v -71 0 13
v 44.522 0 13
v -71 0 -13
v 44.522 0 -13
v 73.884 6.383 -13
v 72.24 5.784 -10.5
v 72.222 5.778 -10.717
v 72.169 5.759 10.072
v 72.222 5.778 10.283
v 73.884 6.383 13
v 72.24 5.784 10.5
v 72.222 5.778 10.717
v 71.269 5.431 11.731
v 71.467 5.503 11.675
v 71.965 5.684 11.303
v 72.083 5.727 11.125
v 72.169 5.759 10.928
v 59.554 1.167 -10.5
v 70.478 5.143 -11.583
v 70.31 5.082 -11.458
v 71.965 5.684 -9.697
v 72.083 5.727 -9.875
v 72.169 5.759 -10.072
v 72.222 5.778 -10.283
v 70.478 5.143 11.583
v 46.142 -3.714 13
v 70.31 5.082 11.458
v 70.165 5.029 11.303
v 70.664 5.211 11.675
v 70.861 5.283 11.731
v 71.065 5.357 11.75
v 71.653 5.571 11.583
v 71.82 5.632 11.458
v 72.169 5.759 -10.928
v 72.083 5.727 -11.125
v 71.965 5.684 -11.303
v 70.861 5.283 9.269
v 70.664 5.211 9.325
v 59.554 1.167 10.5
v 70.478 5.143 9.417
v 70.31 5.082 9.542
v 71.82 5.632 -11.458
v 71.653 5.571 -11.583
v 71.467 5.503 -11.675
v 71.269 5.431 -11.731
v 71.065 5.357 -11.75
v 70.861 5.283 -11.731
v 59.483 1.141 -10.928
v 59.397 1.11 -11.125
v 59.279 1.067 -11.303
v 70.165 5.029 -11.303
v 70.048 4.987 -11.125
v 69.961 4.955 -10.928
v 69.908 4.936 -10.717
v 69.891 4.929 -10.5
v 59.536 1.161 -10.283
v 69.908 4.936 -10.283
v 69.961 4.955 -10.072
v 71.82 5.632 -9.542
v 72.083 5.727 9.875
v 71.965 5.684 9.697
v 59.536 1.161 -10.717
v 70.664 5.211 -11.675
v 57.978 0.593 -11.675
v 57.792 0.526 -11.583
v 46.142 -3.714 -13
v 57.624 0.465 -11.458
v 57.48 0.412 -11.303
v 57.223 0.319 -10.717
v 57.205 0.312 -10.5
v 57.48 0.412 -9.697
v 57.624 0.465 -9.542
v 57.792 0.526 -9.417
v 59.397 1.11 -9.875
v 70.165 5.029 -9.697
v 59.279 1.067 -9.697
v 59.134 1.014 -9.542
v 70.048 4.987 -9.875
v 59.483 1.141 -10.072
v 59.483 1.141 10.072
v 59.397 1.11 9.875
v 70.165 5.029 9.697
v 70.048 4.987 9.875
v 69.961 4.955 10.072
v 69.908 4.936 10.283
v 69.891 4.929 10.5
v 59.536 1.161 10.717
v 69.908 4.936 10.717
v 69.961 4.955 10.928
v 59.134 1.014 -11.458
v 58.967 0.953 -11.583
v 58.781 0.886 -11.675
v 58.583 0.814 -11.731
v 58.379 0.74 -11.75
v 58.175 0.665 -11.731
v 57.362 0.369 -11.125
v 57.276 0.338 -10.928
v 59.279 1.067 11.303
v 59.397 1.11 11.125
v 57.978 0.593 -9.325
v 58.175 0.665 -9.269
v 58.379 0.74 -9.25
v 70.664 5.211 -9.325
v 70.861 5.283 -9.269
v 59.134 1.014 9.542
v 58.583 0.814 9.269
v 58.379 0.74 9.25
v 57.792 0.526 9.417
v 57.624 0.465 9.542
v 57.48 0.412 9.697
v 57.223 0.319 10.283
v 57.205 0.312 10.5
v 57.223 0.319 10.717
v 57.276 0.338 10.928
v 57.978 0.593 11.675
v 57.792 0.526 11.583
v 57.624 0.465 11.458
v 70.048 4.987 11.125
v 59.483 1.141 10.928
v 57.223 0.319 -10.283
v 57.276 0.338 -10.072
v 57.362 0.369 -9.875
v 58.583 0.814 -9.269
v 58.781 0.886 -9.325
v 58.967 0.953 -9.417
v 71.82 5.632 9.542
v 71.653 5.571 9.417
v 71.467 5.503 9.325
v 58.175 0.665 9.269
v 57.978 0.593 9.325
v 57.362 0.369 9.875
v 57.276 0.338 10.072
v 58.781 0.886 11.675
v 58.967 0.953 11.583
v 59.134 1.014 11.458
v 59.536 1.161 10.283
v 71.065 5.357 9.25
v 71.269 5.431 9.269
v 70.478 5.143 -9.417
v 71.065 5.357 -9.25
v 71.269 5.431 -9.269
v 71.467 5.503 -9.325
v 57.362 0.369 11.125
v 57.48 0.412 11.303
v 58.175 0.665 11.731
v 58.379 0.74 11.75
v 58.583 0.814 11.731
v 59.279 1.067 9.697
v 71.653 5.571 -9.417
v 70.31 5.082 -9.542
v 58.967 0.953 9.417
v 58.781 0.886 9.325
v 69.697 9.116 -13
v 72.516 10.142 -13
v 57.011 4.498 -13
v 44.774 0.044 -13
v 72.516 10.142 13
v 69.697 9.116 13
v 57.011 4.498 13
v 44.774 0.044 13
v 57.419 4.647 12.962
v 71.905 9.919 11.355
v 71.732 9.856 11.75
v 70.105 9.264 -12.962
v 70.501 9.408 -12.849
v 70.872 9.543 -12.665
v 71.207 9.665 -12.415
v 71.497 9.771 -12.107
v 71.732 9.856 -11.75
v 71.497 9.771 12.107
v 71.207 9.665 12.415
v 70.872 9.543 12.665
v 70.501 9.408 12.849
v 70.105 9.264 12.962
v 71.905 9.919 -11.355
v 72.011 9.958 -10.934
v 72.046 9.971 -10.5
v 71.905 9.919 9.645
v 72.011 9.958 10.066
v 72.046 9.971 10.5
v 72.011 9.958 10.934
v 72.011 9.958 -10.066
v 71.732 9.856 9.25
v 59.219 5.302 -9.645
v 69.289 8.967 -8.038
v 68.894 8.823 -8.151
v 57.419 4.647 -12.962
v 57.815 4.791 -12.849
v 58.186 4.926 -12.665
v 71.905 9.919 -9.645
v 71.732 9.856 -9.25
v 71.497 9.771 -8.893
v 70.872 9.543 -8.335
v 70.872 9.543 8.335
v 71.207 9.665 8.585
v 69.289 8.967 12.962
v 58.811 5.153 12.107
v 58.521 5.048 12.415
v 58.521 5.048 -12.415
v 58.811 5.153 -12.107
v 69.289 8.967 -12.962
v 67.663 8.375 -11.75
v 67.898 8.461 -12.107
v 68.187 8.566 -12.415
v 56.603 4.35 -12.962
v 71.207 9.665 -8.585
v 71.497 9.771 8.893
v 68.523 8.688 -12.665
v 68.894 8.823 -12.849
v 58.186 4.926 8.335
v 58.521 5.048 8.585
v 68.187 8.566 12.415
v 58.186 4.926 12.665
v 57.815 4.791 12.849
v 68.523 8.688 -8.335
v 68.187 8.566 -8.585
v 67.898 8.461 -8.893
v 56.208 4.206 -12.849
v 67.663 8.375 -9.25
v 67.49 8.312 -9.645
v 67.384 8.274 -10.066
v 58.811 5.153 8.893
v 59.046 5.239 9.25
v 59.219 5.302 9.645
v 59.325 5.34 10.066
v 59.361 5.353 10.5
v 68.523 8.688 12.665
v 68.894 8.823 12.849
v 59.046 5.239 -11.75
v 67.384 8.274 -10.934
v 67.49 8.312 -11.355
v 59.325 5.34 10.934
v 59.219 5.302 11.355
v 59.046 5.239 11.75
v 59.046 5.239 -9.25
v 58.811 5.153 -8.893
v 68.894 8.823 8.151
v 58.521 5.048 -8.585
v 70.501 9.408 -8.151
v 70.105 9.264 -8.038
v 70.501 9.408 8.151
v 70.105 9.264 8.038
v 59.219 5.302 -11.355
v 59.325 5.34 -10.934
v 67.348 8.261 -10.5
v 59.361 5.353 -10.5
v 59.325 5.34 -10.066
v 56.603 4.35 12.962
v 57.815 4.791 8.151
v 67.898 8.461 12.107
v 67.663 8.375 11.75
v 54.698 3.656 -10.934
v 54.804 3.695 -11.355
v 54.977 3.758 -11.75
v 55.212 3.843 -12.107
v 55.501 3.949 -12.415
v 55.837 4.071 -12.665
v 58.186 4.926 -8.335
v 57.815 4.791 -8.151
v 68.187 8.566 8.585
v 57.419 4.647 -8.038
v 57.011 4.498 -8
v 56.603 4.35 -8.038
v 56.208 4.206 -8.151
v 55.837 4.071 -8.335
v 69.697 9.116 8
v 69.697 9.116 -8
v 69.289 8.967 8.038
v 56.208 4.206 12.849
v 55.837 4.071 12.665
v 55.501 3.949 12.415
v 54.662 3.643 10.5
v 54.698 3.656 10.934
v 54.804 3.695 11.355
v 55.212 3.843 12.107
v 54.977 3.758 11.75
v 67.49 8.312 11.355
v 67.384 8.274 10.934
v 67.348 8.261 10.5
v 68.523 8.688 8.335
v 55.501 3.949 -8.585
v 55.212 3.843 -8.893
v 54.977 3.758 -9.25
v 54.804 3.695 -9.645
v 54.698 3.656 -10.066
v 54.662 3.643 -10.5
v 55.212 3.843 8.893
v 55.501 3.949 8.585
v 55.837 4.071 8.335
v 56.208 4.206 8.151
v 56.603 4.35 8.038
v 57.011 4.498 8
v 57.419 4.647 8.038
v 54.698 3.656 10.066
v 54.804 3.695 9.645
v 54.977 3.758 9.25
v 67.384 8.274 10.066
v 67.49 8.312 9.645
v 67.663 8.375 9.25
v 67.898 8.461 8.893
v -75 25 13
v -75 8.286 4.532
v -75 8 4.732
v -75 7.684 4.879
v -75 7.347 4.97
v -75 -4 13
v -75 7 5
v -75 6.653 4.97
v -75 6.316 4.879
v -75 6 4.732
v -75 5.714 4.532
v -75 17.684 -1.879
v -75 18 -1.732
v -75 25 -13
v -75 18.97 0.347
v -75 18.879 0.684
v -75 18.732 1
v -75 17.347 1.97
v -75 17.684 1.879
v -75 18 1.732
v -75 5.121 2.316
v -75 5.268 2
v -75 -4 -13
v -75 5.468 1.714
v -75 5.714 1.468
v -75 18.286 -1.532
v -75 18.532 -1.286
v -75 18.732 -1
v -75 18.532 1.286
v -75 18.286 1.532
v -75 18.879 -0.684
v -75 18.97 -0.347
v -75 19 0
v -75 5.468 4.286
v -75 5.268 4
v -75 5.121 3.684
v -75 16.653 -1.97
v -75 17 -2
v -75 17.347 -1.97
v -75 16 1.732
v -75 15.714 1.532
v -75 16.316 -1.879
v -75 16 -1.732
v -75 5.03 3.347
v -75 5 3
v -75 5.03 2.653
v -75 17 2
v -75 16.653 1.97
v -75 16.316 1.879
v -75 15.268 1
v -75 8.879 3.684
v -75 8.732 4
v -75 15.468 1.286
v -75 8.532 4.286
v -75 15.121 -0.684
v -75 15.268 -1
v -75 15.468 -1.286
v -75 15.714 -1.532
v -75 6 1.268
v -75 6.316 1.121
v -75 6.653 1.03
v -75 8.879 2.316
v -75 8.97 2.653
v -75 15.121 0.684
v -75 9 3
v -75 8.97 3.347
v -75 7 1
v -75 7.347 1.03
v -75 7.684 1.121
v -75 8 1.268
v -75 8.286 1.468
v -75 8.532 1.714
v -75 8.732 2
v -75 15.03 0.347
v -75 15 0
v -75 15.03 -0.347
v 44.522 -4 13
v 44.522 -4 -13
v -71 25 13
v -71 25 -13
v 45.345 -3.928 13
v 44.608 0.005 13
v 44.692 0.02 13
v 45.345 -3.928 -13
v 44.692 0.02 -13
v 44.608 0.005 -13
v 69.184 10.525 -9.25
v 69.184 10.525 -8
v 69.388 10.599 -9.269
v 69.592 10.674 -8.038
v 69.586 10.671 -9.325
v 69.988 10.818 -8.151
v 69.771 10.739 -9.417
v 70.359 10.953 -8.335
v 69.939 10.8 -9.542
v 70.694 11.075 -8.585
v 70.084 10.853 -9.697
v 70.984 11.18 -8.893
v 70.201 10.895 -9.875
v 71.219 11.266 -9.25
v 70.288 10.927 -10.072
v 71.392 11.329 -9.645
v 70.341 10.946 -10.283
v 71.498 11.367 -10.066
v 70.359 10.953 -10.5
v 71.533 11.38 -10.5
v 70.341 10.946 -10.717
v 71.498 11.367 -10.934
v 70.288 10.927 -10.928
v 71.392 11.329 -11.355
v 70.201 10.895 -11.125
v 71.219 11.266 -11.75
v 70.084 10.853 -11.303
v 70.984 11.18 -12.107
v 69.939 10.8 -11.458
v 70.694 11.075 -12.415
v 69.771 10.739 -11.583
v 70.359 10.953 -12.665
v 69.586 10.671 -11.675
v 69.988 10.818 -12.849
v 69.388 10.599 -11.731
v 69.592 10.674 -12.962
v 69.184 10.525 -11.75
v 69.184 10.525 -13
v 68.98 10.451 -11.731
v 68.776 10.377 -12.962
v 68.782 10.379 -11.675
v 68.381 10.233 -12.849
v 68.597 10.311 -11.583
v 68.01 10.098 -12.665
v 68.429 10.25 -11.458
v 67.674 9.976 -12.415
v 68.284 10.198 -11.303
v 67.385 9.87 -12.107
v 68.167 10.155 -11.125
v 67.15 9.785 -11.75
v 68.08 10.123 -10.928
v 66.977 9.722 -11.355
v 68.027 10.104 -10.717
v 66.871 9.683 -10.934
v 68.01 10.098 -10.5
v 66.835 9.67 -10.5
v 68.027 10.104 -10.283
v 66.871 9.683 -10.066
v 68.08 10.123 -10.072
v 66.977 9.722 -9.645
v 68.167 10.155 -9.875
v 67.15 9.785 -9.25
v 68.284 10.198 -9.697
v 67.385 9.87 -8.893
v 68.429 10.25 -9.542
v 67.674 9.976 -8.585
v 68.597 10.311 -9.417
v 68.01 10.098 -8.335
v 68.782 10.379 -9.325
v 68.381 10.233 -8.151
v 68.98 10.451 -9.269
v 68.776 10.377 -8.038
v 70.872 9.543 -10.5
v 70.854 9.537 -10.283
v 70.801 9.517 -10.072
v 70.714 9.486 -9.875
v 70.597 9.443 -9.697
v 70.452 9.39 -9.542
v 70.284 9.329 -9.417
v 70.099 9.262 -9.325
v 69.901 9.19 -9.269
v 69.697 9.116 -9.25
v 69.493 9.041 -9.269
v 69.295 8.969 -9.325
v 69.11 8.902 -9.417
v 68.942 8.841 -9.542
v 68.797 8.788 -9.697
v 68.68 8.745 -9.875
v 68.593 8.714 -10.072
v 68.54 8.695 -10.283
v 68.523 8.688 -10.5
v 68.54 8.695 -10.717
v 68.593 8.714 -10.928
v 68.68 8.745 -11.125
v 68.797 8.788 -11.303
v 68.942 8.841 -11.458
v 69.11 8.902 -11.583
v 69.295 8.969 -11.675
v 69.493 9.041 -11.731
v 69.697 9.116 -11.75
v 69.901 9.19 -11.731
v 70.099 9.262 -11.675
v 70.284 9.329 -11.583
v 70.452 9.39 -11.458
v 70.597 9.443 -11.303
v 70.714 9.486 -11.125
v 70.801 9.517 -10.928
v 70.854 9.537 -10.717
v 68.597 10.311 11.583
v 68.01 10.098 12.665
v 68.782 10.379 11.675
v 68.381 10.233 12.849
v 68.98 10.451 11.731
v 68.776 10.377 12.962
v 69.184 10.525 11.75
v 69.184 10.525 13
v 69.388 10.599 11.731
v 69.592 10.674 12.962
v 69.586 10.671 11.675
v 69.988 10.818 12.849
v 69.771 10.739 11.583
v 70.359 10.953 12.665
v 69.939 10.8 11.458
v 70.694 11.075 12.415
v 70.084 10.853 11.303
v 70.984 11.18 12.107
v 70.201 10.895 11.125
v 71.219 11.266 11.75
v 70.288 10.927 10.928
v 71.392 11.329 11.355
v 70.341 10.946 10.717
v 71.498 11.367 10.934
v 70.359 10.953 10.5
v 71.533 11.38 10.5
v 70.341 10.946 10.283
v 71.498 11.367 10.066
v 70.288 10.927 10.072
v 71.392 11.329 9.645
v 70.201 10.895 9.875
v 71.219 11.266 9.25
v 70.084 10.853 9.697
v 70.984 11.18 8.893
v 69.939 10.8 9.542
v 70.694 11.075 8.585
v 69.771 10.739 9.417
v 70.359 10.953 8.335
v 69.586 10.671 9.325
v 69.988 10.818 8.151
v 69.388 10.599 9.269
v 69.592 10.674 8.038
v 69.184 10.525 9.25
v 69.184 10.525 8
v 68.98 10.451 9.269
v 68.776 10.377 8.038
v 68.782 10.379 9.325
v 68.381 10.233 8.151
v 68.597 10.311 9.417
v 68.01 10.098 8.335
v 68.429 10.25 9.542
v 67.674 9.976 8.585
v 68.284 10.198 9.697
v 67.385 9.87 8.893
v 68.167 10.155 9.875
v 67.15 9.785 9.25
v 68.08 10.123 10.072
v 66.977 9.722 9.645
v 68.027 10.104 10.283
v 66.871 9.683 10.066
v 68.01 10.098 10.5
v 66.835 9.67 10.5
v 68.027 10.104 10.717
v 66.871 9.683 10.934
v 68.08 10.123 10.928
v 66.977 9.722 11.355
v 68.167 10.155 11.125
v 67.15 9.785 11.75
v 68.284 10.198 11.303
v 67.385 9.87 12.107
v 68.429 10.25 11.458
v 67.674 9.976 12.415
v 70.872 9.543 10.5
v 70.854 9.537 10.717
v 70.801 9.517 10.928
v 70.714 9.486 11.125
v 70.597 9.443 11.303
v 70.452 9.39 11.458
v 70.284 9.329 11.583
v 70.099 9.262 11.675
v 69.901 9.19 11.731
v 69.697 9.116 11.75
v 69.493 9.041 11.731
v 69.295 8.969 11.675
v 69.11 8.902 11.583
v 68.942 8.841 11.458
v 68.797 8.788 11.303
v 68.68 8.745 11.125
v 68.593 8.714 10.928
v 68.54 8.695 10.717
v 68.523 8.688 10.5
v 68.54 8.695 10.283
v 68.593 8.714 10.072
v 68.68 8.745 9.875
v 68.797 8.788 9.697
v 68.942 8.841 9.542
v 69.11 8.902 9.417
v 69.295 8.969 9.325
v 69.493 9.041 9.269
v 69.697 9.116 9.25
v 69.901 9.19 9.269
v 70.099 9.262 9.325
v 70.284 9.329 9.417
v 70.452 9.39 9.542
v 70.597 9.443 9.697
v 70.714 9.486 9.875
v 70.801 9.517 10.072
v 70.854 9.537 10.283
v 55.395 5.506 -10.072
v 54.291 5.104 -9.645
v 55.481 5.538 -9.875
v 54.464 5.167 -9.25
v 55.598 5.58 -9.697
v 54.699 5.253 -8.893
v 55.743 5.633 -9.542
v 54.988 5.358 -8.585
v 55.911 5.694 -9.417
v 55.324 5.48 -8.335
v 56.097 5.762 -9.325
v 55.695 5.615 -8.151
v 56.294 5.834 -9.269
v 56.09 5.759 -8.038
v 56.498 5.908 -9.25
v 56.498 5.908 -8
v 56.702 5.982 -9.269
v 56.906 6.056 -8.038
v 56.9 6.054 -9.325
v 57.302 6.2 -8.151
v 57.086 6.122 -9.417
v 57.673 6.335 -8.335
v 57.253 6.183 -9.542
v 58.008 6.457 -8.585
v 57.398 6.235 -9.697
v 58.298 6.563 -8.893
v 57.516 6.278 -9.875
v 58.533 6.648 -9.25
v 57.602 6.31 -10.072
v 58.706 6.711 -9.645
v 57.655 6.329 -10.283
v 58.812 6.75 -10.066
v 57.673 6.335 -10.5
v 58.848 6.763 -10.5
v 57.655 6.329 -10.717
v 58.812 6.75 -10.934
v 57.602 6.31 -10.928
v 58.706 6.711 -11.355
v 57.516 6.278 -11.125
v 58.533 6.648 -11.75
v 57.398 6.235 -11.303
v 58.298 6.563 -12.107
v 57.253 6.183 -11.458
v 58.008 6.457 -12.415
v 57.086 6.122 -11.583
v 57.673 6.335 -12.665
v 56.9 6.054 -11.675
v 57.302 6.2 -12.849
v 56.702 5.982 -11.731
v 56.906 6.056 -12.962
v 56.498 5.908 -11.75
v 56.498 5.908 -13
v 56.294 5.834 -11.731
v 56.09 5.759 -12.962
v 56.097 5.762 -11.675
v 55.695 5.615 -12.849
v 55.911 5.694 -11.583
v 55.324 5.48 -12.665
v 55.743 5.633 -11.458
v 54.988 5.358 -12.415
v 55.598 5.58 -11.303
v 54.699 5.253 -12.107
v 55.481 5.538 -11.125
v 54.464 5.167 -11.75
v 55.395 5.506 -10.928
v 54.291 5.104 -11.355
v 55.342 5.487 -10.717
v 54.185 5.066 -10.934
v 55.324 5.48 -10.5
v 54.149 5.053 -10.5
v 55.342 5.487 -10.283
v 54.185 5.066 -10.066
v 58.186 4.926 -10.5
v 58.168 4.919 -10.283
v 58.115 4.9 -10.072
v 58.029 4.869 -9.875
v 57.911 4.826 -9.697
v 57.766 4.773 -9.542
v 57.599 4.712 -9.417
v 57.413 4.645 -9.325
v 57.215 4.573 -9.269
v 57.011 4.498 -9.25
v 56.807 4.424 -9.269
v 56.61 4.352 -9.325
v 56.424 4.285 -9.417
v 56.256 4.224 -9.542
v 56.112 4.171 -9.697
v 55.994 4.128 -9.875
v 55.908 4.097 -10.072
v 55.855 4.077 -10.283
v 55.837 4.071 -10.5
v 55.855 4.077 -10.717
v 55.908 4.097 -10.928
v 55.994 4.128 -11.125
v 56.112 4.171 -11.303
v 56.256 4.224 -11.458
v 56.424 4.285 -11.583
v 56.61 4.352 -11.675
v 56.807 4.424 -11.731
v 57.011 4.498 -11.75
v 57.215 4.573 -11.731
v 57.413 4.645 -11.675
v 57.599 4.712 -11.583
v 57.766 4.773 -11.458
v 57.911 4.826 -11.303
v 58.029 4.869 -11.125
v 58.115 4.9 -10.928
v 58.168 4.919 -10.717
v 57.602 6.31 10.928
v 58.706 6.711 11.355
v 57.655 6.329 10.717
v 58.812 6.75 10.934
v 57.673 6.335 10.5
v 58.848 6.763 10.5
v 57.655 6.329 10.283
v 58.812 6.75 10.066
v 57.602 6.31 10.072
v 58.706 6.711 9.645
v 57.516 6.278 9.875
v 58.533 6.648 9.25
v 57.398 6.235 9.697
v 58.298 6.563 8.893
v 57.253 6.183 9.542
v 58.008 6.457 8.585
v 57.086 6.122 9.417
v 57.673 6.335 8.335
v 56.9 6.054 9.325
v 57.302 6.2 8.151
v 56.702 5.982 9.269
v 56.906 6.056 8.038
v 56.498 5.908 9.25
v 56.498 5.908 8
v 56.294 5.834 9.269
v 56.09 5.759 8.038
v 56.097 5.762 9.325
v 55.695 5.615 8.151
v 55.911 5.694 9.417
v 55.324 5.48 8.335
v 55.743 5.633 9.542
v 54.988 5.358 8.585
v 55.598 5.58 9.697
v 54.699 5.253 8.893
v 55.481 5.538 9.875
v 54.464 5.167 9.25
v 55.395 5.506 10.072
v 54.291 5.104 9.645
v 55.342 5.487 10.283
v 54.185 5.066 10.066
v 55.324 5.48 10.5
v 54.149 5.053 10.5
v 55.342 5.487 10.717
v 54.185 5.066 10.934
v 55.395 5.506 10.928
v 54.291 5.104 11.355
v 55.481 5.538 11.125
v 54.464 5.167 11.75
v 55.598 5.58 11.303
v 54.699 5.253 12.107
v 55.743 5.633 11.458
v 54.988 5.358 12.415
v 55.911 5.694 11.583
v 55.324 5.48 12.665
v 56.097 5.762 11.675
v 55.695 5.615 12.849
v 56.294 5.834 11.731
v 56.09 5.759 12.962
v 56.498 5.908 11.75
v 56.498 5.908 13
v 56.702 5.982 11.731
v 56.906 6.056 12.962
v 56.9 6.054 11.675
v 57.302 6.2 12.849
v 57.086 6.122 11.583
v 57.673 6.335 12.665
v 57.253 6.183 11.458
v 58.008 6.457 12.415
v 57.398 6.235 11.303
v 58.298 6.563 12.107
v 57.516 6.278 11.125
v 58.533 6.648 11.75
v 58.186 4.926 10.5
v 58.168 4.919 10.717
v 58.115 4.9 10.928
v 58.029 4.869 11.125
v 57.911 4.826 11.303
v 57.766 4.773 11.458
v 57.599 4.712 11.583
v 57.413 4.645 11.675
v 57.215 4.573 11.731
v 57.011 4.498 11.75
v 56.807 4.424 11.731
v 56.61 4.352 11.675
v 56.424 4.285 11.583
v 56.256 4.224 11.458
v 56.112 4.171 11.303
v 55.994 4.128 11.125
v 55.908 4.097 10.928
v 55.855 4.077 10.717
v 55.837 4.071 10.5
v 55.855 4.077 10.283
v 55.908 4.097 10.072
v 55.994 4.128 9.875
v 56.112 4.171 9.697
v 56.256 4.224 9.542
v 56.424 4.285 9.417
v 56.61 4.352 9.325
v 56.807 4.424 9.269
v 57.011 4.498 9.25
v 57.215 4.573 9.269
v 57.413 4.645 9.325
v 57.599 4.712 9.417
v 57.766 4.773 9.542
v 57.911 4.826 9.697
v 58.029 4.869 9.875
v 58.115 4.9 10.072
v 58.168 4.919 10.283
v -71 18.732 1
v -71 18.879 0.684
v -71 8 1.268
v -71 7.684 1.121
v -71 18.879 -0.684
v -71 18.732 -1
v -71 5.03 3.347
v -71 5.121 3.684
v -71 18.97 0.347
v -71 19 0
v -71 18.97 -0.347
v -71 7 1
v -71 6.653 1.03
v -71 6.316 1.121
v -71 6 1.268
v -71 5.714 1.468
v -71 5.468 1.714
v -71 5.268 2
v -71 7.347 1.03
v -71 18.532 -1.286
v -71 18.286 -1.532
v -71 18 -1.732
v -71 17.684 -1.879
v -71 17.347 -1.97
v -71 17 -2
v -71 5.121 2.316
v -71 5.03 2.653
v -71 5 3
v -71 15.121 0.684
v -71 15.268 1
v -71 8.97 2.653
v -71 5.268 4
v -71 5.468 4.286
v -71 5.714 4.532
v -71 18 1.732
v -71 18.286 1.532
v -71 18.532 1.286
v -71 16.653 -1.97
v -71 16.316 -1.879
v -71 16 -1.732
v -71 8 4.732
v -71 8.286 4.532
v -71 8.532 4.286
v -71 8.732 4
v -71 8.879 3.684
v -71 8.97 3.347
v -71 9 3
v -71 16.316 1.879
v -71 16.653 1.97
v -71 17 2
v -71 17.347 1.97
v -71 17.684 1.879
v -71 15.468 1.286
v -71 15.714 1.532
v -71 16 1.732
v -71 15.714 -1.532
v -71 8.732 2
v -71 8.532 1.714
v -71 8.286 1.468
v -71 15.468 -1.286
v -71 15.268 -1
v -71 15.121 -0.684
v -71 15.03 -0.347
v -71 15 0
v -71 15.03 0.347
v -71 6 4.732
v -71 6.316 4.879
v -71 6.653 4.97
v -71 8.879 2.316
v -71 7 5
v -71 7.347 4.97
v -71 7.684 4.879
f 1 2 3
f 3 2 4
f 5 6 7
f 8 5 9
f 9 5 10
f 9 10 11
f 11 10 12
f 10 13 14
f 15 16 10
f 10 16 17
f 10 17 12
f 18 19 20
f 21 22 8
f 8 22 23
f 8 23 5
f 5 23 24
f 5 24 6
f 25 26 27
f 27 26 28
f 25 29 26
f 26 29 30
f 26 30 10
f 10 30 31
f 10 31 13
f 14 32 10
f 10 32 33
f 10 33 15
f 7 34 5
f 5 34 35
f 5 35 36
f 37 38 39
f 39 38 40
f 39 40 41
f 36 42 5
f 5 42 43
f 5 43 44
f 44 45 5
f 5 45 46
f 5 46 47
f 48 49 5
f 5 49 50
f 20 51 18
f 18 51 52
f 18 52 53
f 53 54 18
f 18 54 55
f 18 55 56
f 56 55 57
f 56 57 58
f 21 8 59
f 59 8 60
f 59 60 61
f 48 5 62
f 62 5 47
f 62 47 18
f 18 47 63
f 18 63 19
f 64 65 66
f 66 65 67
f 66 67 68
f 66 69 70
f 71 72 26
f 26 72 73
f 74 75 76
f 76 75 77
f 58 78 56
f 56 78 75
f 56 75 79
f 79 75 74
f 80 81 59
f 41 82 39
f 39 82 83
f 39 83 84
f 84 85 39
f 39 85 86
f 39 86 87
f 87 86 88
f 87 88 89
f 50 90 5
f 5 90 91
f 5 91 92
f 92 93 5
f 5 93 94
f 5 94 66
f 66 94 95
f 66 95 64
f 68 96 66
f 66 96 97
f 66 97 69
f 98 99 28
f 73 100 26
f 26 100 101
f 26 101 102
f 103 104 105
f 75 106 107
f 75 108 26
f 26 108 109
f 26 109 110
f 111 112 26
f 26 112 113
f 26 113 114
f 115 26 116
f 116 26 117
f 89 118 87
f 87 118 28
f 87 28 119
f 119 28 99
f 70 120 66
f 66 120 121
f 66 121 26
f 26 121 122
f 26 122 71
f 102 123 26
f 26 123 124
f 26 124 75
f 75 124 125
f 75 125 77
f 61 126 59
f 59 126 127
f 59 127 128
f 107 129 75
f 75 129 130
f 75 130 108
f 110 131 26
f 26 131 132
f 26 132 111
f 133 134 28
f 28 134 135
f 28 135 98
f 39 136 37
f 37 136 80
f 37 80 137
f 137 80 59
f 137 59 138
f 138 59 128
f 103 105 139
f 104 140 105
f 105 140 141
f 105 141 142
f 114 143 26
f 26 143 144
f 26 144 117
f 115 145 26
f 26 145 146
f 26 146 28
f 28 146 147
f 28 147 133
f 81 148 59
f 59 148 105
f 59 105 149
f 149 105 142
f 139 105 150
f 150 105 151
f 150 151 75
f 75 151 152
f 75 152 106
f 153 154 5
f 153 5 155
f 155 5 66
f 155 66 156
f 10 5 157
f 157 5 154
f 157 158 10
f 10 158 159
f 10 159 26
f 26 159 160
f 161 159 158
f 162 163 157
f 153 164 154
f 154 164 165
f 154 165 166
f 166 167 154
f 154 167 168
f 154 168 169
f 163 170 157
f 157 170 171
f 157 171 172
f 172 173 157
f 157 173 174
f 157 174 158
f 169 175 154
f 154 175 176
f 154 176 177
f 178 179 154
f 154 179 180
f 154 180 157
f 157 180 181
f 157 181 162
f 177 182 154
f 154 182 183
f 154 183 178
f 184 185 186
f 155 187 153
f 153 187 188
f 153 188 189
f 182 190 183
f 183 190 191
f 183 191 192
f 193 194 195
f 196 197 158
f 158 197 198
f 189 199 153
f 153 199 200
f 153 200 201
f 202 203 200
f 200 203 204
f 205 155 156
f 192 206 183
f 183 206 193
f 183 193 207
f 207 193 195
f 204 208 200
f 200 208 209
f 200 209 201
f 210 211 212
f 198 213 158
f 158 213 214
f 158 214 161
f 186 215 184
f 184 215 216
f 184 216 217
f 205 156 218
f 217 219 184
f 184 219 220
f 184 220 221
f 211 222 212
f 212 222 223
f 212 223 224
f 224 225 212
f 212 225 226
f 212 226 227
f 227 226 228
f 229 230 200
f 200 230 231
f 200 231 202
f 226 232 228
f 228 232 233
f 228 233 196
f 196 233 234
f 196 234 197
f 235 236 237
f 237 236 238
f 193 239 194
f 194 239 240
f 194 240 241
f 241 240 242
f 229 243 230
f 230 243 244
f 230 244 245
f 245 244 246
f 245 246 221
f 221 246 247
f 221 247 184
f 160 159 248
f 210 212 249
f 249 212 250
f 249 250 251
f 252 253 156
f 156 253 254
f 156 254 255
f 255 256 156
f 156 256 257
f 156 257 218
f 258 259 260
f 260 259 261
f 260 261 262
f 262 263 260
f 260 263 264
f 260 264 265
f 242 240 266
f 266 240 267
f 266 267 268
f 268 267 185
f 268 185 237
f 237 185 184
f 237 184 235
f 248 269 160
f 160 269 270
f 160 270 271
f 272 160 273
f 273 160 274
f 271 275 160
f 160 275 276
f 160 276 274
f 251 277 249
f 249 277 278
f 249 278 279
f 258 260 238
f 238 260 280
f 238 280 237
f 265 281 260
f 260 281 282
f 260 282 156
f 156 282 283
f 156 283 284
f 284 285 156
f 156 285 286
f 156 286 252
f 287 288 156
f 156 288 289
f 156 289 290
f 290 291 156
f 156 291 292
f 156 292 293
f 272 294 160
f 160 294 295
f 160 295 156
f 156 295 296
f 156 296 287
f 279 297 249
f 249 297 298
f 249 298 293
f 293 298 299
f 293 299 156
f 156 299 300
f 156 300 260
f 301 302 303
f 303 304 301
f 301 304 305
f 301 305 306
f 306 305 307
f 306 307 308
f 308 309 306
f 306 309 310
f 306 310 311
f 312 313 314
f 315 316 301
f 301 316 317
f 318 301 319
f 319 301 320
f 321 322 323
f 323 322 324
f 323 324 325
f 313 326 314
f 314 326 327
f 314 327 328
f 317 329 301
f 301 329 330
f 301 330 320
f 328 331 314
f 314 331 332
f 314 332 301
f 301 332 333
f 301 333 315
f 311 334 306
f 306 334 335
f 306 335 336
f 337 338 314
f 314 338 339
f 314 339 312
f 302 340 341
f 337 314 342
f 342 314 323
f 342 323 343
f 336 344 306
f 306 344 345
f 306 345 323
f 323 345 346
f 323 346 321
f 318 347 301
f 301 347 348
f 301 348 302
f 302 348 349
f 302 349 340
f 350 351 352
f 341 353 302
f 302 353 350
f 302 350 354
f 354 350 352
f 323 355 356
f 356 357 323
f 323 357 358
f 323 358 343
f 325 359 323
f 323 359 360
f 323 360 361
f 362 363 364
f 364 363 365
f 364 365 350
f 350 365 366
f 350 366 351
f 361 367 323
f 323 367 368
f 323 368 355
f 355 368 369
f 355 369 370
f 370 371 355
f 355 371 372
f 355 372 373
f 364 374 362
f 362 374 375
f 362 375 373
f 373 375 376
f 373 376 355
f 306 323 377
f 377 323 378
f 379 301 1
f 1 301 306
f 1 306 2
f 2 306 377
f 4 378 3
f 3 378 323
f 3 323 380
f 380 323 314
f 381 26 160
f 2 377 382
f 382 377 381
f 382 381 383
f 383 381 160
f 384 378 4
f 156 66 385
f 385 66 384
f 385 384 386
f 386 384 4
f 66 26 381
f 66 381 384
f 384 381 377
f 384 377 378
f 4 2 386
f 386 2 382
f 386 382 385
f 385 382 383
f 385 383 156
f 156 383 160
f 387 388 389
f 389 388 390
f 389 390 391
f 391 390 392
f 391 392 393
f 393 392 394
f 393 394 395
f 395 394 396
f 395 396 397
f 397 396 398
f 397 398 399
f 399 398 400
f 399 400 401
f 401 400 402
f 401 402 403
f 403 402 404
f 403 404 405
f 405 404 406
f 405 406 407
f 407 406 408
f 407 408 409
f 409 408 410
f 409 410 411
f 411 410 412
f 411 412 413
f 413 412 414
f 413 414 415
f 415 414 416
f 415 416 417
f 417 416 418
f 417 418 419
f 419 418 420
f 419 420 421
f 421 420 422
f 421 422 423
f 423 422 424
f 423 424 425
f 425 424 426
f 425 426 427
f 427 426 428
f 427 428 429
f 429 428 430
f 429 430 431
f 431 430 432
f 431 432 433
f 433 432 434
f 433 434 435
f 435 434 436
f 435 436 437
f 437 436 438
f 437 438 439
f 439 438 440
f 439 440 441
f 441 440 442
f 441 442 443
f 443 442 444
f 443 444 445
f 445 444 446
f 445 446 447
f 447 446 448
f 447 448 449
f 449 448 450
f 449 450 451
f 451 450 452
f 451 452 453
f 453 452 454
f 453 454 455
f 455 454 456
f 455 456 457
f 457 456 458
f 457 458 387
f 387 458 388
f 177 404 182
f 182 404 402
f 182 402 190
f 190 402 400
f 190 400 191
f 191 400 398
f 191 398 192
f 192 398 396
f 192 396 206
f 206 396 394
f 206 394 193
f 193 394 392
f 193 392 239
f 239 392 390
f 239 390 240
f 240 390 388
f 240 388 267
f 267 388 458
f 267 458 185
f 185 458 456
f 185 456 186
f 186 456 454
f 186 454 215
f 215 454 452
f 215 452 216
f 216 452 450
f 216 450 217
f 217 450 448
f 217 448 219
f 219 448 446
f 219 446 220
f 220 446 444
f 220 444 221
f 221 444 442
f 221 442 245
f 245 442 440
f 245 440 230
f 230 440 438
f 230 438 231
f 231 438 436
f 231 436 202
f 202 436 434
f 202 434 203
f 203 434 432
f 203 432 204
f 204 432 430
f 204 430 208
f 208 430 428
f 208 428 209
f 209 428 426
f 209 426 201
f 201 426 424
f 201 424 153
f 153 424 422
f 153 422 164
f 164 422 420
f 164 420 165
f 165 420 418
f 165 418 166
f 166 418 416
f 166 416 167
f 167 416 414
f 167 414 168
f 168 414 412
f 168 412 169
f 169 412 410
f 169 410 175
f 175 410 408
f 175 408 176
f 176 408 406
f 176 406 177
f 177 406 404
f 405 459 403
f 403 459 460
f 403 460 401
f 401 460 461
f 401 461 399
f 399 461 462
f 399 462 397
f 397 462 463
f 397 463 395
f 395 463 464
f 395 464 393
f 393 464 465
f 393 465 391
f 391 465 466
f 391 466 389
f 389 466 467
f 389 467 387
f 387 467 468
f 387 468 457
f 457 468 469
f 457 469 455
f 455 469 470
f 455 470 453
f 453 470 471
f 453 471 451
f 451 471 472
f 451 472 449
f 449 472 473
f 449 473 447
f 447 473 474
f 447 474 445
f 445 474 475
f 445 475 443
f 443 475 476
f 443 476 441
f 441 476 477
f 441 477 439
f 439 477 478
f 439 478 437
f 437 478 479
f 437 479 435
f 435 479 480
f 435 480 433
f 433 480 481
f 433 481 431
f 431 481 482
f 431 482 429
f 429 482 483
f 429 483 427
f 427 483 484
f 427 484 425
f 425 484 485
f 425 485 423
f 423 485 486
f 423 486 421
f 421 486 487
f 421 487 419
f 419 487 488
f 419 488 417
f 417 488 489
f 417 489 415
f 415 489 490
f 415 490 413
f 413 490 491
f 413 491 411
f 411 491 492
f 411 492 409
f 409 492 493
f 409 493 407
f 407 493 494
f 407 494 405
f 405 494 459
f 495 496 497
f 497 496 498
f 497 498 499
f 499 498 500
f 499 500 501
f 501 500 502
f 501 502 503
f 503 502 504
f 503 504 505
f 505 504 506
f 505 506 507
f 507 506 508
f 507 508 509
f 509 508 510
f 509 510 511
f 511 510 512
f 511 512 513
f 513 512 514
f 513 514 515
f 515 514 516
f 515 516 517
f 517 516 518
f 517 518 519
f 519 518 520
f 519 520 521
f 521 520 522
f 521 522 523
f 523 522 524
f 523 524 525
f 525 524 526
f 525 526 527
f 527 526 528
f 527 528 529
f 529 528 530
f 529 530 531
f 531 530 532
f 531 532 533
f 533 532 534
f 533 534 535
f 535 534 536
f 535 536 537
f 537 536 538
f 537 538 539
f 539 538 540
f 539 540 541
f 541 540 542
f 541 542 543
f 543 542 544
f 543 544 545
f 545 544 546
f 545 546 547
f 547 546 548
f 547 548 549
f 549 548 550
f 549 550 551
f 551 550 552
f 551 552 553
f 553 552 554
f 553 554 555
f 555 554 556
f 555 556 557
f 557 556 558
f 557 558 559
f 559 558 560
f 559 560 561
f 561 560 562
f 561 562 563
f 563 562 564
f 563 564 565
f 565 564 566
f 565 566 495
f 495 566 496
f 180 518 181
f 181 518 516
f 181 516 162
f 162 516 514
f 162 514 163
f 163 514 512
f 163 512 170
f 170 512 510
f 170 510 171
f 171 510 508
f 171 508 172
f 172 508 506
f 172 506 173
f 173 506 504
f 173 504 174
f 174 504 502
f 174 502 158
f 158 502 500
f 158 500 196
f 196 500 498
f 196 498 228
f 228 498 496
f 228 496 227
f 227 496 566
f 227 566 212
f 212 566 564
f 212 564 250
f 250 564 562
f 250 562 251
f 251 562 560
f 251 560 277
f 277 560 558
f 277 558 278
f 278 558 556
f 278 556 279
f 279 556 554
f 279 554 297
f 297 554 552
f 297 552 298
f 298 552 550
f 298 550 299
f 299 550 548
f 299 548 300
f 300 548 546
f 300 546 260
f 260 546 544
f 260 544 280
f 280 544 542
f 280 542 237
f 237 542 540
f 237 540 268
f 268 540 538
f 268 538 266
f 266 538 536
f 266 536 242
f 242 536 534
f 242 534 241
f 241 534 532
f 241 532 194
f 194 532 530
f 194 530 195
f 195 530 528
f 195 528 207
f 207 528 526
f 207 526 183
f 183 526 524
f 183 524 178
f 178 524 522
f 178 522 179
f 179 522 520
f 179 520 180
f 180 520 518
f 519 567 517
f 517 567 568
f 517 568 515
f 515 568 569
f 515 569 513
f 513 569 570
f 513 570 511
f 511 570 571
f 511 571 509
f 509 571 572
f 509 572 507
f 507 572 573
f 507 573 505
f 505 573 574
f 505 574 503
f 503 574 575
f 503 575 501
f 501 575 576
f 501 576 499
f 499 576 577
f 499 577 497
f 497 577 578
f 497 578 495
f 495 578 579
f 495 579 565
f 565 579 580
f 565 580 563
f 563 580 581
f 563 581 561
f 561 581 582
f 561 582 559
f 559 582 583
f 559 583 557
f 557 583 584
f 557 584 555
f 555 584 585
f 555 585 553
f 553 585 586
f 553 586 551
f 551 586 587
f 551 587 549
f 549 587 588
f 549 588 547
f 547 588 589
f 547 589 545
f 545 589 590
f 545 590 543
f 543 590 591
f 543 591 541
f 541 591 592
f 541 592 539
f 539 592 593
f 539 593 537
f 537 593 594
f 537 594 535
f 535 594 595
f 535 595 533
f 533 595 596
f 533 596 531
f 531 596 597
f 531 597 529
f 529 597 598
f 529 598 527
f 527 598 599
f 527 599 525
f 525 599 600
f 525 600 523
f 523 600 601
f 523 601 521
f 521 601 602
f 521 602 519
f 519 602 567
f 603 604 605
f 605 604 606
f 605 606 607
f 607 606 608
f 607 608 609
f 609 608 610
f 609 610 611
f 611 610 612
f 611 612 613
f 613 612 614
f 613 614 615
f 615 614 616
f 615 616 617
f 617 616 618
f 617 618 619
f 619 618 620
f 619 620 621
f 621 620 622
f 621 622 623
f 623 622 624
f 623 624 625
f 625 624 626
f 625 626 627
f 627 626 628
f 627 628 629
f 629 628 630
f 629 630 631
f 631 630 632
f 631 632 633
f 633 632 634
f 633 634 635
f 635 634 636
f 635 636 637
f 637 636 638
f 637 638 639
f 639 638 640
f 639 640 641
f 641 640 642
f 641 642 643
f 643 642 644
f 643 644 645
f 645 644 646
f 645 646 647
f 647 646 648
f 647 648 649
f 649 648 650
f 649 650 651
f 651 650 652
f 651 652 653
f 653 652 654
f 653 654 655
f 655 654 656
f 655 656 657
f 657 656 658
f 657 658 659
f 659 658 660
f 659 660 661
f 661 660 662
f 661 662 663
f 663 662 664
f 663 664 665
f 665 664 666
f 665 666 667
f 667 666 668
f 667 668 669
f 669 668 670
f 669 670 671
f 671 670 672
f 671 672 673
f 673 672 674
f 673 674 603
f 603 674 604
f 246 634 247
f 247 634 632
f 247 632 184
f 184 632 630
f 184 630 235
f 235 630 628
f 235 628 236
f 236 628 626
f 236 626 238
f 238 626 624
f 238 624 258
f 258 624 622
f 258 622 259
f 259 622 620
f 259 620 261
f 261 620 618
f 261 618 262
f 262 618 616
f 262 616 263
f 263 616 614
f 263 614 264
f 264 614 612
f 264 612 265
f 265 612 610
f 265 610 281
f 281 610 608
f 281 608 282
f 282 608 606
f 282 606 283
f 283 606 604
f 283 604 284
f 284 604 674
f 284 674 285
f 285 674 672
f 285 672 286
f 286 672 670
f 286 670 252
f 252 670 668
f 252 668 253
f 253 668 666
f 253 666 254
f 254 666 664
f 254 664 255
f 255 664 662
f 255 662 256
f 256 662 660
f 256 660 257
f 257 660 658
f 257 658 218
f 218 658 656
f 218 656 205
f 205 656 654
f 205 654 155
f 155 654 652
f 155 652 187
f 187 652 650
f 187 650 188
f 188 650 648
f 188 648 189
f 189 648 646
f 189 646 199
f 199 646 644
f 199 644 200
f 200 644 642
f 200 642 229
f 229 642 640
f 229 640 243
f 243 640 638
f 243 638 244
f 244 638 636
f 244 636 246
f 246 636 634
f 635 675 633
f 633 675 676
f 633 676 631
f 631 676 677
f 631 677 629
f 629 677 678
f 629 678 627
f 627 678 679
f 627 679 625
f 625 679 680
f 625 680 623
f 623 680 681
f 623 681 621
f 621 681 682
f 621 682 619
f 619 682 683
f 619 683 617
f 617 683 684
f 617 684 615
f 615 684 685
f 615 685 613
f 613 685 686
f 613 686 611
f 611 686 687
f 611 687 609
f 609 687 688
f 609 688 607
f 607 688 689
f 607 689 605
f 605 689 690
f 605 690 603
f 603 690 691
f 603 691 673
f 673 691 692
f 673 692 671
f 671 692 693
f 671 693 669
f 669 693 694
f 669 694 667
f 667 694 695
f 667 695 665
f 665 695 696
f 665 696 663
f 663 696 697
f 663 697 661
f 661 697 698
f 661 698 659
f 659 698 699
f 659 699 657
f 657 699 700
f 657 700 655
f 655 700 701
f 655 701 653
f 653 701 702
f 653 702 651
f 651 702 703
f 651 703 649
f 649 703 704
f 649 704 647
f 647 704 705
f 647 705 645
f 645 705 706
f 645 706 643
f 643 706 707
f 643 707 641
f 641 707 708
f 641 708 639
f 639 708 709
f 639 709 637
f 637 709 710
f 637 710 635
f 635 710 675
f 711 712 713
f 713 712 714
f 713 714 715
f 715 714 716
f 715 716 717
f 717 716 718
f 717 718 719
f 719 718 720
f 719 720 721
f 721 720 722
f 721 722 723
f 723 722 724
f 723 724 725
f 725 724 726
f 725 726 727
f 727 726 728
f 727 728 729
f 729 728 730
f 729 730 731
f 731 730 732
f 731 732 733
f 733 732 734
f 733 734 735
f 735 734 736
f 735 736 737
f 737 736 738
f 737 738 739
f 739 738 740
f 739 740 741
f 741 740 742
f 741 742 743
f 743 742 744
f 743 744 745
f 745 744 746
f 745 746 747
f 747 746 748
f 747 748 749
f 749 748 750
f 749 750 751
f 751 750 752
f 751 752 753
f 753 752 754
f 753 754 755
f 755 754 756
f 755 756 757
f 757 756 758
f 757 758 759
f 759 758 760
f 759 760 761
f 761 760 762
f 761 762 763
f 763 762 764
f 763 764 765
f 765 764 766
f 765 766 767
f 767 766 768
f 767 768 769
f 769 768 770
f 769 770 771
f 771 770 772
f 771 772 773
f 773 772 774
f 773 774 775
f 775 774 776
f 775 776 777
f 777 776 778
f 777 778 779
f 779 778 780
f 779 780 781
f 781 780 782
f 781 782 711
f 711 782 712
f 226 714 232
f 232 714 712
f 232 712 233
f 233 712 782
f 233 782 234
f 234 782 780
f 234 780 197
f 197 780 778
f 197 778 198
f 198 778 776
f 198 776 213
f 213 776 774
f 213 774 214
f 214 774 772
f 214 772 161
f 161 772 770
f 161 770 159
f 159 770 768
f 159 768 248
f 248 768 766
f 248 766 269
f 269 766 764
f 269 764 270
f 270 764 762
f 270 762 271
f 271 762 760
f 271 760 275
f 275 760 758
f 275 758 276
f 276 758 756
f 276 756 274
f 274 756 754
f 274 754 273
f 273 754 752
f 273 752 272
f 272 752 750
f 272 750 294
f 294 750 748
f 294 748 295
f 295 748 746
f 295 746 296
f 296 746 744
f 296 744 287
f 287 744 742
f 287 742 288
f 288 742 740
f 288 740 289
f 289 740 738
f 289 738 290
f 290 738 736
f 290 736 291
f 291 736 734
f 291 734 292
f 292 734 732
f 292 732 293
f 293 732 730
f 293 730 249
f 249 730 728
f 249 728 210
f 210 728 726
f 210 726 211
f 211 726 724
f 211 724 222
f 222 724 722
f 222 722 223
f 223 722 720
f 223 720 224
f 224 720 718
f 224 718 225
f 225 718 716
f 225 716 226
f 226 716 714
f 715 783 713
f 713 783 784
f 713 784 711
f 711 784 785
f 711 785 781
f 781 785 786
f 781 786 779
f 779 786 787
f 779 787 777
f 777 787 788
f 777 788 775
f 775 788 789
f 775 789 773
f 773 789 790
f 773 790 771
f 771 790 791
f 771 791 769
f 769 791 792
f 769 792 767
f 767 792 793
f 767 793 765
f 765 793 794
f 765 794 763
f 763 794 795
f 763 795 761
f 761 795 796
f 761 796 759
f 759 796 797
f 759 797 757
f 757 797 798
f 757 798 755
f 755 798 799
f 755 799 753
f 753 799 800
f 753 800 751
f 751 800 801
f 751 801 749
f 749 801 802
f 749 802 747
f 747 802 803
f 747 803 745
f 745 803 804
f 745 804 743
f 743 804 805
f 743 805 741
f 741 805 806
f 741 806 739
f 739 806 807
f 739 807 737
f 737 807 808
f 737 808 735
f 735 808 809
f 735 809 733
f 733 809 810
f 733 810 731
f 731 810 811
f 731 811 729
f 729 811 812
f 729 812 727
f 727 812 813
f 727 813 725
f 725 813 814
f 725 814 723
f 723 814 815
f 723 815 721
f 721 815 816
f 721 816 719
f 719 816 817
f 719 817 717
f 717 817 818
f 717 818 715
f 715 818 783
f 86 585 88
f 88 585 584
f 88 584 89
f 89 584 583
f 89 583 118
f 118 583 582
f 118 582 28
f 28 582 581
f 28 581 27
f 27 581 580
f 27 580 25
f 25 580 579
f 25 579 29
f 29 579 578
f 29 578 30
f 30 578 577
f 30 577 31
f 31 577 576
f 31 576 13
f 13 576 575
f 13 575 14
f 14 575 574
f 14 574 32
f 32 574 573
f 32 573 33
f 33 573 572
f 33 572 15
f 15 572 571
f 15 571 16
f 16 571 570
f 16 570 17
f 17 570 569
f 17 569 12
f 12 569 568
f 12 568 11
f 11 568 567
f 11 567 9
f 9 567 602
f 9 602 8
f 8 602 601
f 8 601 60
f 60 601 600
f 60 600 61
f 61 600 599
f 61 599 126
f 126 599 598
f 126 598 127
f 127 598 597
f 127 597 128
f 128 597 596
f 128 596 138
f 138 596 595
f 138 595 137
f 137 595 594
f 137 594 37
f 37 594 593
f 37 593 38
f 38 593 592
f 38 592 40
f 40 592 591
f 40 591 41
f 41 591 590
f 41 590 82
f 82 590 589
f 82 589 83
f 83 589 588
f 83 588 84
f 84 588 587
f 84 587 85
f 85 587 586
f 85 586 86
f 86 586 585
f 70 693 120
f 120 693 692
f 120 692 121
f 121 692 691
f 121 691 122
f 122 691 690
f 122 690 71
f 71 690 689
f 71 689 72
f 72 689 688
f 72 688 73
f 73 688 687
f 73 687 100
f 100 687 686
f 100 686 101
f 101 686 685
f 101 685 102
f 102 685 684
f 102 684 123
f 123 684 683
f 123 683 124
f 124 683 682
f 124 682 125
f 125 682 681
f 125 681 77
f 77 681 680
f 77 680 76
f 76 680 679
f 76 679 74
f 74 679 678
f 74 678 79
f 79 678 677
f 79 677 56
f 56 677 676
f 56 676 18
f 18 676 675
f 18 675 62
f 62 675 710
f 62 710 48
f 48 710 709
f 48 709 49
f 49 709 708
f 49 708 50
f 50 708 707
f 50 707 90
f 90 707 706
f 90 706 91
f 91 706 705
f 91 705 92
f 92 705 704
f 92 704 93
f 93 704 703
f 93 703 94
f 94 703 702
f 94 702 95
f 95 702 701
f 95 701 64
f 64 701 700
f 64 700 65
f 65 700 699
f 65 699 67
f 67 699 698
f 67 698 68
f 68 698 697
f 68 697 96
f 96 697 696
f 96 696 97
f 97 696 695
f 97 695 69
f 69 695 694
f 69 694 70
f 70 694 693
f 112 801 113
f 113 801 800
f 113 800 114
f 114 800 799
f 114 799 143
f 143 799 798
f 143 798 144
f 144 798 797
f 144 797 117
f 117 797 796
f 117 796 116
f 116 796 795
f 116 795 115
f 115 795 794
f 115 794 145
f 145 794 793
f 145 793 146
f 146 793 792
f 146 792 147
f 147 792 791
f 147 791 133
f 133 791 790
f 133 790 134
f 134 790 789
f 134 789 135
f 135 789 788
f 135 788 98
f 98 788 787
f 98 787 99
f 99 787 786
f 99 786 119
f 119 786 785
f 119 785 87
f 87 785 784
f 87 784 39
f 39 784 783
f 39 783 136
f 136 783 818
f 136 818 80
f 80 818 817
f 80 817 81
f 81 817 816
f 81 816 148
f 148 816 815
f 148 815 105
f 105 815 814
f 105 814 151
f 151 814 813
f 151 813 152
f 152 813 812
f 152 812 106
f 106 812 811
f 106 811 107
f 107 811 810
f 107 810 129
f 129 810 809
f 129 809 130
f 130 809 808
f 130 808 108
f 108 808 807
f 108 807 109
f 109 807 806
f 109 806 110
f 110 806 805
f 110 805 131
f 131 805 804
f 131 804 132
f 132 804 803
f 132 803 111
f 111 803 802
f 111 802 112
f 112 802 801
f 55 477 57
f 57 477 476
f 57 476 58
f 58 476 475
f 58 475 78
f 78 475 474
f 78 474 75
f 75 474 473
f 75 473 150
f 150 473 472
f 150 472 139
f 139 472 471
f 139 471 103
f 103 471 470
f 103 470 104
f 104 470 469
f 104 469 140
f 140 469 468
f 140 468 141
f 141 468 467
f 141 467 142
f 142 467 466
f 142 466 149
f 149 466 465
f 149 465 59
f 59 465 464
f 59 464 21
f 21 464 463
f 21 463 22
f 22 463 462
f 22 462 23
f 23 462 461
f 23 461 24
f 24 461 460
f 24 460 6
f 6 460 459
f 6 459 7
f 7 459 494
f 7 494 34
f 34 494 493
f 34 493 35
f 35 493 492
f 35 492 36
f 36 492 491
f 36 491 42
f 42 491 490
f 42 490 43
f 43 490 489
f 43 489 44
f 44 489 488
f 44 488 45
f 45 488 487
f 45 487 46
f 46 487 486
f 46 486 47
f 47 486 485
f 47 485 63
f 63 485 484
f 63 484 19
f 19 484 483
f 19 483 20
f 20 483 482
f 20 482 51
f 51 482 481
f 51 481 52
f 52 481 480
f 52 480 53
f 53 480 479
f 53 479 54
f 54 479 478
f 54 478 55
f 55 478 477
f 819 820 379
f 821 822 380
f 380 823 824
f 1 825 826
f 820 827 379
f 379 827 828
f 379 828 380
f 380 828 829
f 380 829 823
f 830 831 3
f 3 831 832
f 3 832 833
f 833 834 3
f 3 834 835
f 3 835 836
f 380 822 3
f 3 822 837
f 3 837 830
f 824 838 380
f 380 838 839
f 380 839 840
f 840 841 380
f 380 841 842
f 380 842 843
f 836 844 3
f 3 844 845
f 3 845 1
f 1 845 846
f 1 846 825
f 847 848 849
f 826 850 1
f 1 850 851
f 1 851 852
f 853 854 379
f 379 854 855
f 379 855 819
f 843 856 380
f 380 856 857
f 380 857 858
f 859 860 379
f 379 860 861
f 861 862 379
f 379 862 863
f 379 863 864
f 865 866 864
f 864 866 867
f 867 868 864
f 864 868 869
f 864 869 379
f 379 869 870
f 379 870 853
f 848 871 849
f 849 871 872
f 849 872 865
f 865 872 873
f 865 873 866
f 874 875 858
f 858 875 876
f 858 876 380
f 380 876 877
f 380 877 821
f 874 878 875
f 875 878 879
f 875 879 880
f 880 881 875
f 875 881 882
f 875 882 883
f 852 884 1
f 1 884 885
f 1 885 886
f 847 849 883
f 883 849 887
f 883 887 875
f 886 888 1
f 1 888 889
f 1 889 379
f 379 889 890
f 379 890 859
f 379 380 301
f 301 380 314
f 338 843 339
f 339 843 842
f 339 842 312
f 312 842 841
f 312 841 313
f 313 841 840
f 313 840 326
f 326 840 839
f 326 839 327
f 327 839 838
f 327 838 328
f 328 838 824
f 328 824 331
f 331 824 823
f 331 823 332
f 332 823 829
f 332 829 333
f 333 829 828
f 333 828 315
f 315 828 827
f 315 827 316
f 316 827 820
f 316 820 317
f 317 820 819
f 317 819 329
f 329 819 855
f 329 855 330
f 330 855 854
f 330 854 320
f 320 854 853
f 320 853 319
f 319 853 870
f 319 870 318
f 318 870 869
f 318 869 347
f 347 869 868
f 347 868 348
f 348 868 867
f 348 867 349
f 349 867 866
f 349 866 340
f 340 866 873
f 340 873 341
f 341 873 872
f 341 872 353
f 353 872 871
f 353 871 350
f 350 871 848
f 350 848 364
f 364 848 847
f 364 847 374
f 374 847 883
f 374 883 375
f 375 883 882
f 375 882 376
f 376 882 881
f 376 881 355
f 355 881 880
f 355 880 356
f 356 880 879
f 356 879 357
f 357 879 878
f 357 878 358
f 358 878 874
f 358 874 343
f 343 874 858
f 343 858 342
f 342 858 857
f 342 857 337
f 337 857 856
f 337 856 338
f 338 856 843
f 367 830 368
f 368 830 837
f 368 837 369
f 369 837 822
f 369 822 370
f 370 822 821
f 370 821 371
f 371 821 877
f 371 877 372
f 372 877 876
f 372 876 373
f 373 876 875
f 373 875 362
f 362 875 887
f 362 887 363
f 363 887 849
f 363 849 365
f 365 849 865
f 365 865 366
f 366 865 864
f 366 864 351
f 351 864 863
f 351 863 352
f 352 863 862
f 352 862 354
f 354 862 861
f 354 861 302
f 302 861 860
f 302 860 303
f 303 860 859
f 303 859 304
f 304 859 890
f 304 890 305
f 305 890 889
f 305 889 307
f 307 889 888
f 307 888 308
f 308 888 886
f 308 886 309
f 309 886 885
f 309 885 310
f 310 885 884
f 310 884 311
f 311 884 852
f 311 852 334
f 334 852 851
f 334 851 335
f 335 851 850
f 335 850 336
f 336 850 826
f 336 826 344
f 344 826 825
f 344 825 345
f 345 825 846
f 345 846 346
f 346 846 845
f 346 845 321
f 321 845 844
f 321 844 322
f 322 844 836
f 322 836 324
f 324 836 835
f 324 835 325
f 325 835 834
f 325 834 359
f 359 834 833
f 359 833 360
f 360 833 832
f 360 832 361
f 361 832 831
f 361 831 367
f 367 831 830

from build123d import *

# Parameters (mm, degrees)
ESQUISSE2_W                 = 150
ESQUISSE2_H                 = 26
T_LE_DE_BASE_PLI_E1_DEPTH   = 4
PLI_START                   = -13
PLI_ESQUISS_1_DEPTH         = 26
PLI_ESQUISS_1_2_DEPTH       = 26
ESQUISSE9_R                 = 2.5
ESQUISSE9_R_2               = 1.25
BOSS_EXTRU_1_DEPTH          = 1.5
ENL_V_START                 = -4
ENL_V_MAT_EXTRU_1_OUTLINE_R = 1.25
ENL_V_MAT_EXTRU_1_DEPTH     = 4
ESQUISSE11_W                = 4
ESQUISSE11_H                = 26
BOSS_EXTRU_2_DEPTH          = 25
ESQUISSE12_R                = 2
ENL_V_MAT_EXTRU_5_DEPTH     = 148.599026321


# Read off the part's stored shape, not the designer's step: Pli esquissé1, Enlèv. mat.-Extru.1
# Sheet-metal steps are written as plain solids
with BuildPart() as part:
    # Esquisse2 → Tôle de base pliée1 (new body)
    with BuildSketch(Plane(origin=(0, 0, 0), x_dir=(1, 0, 0), z_dir=(0, 1, 0))):
        Rectangle(ESQUISSE2_W, ESQUISSE2_H)
    extrude(amount=-T_LE_DE_BASE_PLI_E1_DEPTH)

    # Pli esquissé1 outline → Pli esquissé1 (cut)
    with BuildSketch(Plane.XY.offset(PLI_START)):
        with BuildLine():
            Line((75, 0), (56.347473252, 0))
            Line((56.347473252, 0), (46.142385808, -3.714348068))
            ThreePointArc((46.142385808, -3.714348068), (45.344875155, -3.928040403), (44.522373197, -4))
            Line((44.522373197, -4), (75, -4))
            Line((75, -4), (75, 0))
        make_face()
    extrude(amount=PLI_ESQUISS_1_DEPTH, mode=Mode.SUBTRACT)

    # Pli esquiss_1 2 outline → Pli esquiss_1 2 (add)
    with BuildSketch(Plane.XY.offset(PLI_START)):
        with BuildLine():
            Line((56.347473252, 0), (73.884342049, 6.382898245))
            Line((73.884342049, 6.382898245), (72.516261476, 10.141668728))
            Line((72.516261476, 10.141668728), (44.774305234, 0.044422416))
            ThreePointArc((44.774305234, 0.044422416), (44.650282444, 0.011190609), (44.522373197, 0))
            Line((44.522373197, 0), (56.347473252, 0))
        make_face()
    extrude(amount=PLI_ESQUISS_1_2_DEPTH)

    # Esquisse9 → Boss.-Extru.1 (add)
    # profile 1 of 4: a face of its own
    with BuildSketch(Plane(origin=(5.223321668, -14.350958338, 0), x_dir=(0.9396926207859082, 0.34202014332566943, 0), z_dir=(-0.34202014332566943, 0.9396926207859082, 0))):
        with Locations(Location((55.111650787, 10.5, 0), (0, 0, 90))):
            Circle(ESQUISSE9_R)
        with Locations(Location((55.111650787, 10.5, 0), (0, 0, 180))):
            Circle(ESQUISSE9_R_2, mode=Mode.SUBTRACT)
    # profile 2 of 4: a face of its own
    with BuildSketch(Plane(origin=(5.223321668, -14.350958338, 0), x_dir=(0.9396926207859082, 0.34202014332566943, 0), z_dir=(-0.34202014332566943, 0.9396926207859082, 0))):
        with Locations(Location((68.611650787, 10.5, 0), (0, 0, 90))):
            Circle(ESQUISSE9_R)
        with Locations(Location((68.611650787, 10.5, 0), (0, 0, 180))):
            Circle(ESQUISSE9_R_2, mode=Mode.SUBTRACT)
    # profile 3 of 4: a face of its own
    with BuildSketch(Plane(origin=(5.223321668, -14.350958338, 0), x_dir=(0.9396926207859082, 0.34202014332566943, 0), z_dir=(-0.34202014332566943, 0.9396926207859082, 0))):
        with Locations((68.611650787, -10.5)):
            Circle(ESQUISSE9_R)
        with Locations((68.611650787, -10.5)):
            Circle(ESQUISSE9_R_2, mode=Mode.SUBTRACT)
    # profile 4 of 4: a face of its own
    with BuildSketch(Plane(origin=(5.223321668, -14.350958338, 0), x_dir=(0.9396926207859082, 0.34202014332566943, 0), z_dir=(-0.34202014332566943, 0.9396926207859082, 0))):
        with Locations((55.111650787, -10.5)):
            Circle(ESQUISSE9_R)
        with Locations((55.111650787, -10.5)):
            Circle(ESQUISSE9_R_2, mode=Mode.SUBTRACT)
    extrude(amount=BOSS_EXTRU_1_DEPTH)

    # Enlèv. mat.-Extru.1 outline → Enlèv. mat.-Extru.1 (cut)
    with BuildSketch(Plane(origin=(5.223321668, -14.350958338, 0), x_dir=(0.9396926207859082, 0.34202014332566943, 0), z_dir=(-0.34202014332566943, 0.9396926207859082, 0)).offset(ENL_V_START)):
        with Locations((68.611650787, 10.5)):
            Circle(ENL_V_MAT_EXTRU_1_OUTLINE_R)
        with Locations((68.611650787, -10.5)):
            Circle(ENL_V_MAT_EXTRU_1_OUTLINE_R)
        with Locations((55.111650787, 10.5)):
            Circle(ENL_V_MAT_EXTRU_1_OUTLINE_R)
        with Locations((55.111650787, -10.5)):
            Circle(ENL_V_MAT_EXTRU_1_OUTLINE_R)
    extrude(amount=ENL_V_MAT_EXTRU_1_DEPTH, mode=Mode.SUBTRACT)

    # Esquisse11 → Boss.-Extru.2 (add)
    with BuildSketch(Plane(origin=(0, 0, 0), x_dir=(1, 0, 0), z_dir=(0, 1, 0))):
        with Locations((-73, 0)):
            Rectangle(ESQUISSE11_W, ESQUISSE11_H)
    extrude(amount=BOSS_EXTRU_2_DEPTH)

    # Esquisse12 → Enlèv. mat.-Extru.5 (cut, through all)
    with BuildSketch(Plane(origin=(-71, 0, 0), x_dir=(0, 0, -1), z_dir=(1, 0, 0))):
        with Locations((-3, 7)):
            Circle(ESQUISSE12_R)
        with Locations((0, 17)):
            Circle(ESQUISSE12_R)
    extrude(amount=-ENL_V_MAT_EXTRU_5_DEPTH, mode=Mode.SUBTRACT)


solid = part.part
